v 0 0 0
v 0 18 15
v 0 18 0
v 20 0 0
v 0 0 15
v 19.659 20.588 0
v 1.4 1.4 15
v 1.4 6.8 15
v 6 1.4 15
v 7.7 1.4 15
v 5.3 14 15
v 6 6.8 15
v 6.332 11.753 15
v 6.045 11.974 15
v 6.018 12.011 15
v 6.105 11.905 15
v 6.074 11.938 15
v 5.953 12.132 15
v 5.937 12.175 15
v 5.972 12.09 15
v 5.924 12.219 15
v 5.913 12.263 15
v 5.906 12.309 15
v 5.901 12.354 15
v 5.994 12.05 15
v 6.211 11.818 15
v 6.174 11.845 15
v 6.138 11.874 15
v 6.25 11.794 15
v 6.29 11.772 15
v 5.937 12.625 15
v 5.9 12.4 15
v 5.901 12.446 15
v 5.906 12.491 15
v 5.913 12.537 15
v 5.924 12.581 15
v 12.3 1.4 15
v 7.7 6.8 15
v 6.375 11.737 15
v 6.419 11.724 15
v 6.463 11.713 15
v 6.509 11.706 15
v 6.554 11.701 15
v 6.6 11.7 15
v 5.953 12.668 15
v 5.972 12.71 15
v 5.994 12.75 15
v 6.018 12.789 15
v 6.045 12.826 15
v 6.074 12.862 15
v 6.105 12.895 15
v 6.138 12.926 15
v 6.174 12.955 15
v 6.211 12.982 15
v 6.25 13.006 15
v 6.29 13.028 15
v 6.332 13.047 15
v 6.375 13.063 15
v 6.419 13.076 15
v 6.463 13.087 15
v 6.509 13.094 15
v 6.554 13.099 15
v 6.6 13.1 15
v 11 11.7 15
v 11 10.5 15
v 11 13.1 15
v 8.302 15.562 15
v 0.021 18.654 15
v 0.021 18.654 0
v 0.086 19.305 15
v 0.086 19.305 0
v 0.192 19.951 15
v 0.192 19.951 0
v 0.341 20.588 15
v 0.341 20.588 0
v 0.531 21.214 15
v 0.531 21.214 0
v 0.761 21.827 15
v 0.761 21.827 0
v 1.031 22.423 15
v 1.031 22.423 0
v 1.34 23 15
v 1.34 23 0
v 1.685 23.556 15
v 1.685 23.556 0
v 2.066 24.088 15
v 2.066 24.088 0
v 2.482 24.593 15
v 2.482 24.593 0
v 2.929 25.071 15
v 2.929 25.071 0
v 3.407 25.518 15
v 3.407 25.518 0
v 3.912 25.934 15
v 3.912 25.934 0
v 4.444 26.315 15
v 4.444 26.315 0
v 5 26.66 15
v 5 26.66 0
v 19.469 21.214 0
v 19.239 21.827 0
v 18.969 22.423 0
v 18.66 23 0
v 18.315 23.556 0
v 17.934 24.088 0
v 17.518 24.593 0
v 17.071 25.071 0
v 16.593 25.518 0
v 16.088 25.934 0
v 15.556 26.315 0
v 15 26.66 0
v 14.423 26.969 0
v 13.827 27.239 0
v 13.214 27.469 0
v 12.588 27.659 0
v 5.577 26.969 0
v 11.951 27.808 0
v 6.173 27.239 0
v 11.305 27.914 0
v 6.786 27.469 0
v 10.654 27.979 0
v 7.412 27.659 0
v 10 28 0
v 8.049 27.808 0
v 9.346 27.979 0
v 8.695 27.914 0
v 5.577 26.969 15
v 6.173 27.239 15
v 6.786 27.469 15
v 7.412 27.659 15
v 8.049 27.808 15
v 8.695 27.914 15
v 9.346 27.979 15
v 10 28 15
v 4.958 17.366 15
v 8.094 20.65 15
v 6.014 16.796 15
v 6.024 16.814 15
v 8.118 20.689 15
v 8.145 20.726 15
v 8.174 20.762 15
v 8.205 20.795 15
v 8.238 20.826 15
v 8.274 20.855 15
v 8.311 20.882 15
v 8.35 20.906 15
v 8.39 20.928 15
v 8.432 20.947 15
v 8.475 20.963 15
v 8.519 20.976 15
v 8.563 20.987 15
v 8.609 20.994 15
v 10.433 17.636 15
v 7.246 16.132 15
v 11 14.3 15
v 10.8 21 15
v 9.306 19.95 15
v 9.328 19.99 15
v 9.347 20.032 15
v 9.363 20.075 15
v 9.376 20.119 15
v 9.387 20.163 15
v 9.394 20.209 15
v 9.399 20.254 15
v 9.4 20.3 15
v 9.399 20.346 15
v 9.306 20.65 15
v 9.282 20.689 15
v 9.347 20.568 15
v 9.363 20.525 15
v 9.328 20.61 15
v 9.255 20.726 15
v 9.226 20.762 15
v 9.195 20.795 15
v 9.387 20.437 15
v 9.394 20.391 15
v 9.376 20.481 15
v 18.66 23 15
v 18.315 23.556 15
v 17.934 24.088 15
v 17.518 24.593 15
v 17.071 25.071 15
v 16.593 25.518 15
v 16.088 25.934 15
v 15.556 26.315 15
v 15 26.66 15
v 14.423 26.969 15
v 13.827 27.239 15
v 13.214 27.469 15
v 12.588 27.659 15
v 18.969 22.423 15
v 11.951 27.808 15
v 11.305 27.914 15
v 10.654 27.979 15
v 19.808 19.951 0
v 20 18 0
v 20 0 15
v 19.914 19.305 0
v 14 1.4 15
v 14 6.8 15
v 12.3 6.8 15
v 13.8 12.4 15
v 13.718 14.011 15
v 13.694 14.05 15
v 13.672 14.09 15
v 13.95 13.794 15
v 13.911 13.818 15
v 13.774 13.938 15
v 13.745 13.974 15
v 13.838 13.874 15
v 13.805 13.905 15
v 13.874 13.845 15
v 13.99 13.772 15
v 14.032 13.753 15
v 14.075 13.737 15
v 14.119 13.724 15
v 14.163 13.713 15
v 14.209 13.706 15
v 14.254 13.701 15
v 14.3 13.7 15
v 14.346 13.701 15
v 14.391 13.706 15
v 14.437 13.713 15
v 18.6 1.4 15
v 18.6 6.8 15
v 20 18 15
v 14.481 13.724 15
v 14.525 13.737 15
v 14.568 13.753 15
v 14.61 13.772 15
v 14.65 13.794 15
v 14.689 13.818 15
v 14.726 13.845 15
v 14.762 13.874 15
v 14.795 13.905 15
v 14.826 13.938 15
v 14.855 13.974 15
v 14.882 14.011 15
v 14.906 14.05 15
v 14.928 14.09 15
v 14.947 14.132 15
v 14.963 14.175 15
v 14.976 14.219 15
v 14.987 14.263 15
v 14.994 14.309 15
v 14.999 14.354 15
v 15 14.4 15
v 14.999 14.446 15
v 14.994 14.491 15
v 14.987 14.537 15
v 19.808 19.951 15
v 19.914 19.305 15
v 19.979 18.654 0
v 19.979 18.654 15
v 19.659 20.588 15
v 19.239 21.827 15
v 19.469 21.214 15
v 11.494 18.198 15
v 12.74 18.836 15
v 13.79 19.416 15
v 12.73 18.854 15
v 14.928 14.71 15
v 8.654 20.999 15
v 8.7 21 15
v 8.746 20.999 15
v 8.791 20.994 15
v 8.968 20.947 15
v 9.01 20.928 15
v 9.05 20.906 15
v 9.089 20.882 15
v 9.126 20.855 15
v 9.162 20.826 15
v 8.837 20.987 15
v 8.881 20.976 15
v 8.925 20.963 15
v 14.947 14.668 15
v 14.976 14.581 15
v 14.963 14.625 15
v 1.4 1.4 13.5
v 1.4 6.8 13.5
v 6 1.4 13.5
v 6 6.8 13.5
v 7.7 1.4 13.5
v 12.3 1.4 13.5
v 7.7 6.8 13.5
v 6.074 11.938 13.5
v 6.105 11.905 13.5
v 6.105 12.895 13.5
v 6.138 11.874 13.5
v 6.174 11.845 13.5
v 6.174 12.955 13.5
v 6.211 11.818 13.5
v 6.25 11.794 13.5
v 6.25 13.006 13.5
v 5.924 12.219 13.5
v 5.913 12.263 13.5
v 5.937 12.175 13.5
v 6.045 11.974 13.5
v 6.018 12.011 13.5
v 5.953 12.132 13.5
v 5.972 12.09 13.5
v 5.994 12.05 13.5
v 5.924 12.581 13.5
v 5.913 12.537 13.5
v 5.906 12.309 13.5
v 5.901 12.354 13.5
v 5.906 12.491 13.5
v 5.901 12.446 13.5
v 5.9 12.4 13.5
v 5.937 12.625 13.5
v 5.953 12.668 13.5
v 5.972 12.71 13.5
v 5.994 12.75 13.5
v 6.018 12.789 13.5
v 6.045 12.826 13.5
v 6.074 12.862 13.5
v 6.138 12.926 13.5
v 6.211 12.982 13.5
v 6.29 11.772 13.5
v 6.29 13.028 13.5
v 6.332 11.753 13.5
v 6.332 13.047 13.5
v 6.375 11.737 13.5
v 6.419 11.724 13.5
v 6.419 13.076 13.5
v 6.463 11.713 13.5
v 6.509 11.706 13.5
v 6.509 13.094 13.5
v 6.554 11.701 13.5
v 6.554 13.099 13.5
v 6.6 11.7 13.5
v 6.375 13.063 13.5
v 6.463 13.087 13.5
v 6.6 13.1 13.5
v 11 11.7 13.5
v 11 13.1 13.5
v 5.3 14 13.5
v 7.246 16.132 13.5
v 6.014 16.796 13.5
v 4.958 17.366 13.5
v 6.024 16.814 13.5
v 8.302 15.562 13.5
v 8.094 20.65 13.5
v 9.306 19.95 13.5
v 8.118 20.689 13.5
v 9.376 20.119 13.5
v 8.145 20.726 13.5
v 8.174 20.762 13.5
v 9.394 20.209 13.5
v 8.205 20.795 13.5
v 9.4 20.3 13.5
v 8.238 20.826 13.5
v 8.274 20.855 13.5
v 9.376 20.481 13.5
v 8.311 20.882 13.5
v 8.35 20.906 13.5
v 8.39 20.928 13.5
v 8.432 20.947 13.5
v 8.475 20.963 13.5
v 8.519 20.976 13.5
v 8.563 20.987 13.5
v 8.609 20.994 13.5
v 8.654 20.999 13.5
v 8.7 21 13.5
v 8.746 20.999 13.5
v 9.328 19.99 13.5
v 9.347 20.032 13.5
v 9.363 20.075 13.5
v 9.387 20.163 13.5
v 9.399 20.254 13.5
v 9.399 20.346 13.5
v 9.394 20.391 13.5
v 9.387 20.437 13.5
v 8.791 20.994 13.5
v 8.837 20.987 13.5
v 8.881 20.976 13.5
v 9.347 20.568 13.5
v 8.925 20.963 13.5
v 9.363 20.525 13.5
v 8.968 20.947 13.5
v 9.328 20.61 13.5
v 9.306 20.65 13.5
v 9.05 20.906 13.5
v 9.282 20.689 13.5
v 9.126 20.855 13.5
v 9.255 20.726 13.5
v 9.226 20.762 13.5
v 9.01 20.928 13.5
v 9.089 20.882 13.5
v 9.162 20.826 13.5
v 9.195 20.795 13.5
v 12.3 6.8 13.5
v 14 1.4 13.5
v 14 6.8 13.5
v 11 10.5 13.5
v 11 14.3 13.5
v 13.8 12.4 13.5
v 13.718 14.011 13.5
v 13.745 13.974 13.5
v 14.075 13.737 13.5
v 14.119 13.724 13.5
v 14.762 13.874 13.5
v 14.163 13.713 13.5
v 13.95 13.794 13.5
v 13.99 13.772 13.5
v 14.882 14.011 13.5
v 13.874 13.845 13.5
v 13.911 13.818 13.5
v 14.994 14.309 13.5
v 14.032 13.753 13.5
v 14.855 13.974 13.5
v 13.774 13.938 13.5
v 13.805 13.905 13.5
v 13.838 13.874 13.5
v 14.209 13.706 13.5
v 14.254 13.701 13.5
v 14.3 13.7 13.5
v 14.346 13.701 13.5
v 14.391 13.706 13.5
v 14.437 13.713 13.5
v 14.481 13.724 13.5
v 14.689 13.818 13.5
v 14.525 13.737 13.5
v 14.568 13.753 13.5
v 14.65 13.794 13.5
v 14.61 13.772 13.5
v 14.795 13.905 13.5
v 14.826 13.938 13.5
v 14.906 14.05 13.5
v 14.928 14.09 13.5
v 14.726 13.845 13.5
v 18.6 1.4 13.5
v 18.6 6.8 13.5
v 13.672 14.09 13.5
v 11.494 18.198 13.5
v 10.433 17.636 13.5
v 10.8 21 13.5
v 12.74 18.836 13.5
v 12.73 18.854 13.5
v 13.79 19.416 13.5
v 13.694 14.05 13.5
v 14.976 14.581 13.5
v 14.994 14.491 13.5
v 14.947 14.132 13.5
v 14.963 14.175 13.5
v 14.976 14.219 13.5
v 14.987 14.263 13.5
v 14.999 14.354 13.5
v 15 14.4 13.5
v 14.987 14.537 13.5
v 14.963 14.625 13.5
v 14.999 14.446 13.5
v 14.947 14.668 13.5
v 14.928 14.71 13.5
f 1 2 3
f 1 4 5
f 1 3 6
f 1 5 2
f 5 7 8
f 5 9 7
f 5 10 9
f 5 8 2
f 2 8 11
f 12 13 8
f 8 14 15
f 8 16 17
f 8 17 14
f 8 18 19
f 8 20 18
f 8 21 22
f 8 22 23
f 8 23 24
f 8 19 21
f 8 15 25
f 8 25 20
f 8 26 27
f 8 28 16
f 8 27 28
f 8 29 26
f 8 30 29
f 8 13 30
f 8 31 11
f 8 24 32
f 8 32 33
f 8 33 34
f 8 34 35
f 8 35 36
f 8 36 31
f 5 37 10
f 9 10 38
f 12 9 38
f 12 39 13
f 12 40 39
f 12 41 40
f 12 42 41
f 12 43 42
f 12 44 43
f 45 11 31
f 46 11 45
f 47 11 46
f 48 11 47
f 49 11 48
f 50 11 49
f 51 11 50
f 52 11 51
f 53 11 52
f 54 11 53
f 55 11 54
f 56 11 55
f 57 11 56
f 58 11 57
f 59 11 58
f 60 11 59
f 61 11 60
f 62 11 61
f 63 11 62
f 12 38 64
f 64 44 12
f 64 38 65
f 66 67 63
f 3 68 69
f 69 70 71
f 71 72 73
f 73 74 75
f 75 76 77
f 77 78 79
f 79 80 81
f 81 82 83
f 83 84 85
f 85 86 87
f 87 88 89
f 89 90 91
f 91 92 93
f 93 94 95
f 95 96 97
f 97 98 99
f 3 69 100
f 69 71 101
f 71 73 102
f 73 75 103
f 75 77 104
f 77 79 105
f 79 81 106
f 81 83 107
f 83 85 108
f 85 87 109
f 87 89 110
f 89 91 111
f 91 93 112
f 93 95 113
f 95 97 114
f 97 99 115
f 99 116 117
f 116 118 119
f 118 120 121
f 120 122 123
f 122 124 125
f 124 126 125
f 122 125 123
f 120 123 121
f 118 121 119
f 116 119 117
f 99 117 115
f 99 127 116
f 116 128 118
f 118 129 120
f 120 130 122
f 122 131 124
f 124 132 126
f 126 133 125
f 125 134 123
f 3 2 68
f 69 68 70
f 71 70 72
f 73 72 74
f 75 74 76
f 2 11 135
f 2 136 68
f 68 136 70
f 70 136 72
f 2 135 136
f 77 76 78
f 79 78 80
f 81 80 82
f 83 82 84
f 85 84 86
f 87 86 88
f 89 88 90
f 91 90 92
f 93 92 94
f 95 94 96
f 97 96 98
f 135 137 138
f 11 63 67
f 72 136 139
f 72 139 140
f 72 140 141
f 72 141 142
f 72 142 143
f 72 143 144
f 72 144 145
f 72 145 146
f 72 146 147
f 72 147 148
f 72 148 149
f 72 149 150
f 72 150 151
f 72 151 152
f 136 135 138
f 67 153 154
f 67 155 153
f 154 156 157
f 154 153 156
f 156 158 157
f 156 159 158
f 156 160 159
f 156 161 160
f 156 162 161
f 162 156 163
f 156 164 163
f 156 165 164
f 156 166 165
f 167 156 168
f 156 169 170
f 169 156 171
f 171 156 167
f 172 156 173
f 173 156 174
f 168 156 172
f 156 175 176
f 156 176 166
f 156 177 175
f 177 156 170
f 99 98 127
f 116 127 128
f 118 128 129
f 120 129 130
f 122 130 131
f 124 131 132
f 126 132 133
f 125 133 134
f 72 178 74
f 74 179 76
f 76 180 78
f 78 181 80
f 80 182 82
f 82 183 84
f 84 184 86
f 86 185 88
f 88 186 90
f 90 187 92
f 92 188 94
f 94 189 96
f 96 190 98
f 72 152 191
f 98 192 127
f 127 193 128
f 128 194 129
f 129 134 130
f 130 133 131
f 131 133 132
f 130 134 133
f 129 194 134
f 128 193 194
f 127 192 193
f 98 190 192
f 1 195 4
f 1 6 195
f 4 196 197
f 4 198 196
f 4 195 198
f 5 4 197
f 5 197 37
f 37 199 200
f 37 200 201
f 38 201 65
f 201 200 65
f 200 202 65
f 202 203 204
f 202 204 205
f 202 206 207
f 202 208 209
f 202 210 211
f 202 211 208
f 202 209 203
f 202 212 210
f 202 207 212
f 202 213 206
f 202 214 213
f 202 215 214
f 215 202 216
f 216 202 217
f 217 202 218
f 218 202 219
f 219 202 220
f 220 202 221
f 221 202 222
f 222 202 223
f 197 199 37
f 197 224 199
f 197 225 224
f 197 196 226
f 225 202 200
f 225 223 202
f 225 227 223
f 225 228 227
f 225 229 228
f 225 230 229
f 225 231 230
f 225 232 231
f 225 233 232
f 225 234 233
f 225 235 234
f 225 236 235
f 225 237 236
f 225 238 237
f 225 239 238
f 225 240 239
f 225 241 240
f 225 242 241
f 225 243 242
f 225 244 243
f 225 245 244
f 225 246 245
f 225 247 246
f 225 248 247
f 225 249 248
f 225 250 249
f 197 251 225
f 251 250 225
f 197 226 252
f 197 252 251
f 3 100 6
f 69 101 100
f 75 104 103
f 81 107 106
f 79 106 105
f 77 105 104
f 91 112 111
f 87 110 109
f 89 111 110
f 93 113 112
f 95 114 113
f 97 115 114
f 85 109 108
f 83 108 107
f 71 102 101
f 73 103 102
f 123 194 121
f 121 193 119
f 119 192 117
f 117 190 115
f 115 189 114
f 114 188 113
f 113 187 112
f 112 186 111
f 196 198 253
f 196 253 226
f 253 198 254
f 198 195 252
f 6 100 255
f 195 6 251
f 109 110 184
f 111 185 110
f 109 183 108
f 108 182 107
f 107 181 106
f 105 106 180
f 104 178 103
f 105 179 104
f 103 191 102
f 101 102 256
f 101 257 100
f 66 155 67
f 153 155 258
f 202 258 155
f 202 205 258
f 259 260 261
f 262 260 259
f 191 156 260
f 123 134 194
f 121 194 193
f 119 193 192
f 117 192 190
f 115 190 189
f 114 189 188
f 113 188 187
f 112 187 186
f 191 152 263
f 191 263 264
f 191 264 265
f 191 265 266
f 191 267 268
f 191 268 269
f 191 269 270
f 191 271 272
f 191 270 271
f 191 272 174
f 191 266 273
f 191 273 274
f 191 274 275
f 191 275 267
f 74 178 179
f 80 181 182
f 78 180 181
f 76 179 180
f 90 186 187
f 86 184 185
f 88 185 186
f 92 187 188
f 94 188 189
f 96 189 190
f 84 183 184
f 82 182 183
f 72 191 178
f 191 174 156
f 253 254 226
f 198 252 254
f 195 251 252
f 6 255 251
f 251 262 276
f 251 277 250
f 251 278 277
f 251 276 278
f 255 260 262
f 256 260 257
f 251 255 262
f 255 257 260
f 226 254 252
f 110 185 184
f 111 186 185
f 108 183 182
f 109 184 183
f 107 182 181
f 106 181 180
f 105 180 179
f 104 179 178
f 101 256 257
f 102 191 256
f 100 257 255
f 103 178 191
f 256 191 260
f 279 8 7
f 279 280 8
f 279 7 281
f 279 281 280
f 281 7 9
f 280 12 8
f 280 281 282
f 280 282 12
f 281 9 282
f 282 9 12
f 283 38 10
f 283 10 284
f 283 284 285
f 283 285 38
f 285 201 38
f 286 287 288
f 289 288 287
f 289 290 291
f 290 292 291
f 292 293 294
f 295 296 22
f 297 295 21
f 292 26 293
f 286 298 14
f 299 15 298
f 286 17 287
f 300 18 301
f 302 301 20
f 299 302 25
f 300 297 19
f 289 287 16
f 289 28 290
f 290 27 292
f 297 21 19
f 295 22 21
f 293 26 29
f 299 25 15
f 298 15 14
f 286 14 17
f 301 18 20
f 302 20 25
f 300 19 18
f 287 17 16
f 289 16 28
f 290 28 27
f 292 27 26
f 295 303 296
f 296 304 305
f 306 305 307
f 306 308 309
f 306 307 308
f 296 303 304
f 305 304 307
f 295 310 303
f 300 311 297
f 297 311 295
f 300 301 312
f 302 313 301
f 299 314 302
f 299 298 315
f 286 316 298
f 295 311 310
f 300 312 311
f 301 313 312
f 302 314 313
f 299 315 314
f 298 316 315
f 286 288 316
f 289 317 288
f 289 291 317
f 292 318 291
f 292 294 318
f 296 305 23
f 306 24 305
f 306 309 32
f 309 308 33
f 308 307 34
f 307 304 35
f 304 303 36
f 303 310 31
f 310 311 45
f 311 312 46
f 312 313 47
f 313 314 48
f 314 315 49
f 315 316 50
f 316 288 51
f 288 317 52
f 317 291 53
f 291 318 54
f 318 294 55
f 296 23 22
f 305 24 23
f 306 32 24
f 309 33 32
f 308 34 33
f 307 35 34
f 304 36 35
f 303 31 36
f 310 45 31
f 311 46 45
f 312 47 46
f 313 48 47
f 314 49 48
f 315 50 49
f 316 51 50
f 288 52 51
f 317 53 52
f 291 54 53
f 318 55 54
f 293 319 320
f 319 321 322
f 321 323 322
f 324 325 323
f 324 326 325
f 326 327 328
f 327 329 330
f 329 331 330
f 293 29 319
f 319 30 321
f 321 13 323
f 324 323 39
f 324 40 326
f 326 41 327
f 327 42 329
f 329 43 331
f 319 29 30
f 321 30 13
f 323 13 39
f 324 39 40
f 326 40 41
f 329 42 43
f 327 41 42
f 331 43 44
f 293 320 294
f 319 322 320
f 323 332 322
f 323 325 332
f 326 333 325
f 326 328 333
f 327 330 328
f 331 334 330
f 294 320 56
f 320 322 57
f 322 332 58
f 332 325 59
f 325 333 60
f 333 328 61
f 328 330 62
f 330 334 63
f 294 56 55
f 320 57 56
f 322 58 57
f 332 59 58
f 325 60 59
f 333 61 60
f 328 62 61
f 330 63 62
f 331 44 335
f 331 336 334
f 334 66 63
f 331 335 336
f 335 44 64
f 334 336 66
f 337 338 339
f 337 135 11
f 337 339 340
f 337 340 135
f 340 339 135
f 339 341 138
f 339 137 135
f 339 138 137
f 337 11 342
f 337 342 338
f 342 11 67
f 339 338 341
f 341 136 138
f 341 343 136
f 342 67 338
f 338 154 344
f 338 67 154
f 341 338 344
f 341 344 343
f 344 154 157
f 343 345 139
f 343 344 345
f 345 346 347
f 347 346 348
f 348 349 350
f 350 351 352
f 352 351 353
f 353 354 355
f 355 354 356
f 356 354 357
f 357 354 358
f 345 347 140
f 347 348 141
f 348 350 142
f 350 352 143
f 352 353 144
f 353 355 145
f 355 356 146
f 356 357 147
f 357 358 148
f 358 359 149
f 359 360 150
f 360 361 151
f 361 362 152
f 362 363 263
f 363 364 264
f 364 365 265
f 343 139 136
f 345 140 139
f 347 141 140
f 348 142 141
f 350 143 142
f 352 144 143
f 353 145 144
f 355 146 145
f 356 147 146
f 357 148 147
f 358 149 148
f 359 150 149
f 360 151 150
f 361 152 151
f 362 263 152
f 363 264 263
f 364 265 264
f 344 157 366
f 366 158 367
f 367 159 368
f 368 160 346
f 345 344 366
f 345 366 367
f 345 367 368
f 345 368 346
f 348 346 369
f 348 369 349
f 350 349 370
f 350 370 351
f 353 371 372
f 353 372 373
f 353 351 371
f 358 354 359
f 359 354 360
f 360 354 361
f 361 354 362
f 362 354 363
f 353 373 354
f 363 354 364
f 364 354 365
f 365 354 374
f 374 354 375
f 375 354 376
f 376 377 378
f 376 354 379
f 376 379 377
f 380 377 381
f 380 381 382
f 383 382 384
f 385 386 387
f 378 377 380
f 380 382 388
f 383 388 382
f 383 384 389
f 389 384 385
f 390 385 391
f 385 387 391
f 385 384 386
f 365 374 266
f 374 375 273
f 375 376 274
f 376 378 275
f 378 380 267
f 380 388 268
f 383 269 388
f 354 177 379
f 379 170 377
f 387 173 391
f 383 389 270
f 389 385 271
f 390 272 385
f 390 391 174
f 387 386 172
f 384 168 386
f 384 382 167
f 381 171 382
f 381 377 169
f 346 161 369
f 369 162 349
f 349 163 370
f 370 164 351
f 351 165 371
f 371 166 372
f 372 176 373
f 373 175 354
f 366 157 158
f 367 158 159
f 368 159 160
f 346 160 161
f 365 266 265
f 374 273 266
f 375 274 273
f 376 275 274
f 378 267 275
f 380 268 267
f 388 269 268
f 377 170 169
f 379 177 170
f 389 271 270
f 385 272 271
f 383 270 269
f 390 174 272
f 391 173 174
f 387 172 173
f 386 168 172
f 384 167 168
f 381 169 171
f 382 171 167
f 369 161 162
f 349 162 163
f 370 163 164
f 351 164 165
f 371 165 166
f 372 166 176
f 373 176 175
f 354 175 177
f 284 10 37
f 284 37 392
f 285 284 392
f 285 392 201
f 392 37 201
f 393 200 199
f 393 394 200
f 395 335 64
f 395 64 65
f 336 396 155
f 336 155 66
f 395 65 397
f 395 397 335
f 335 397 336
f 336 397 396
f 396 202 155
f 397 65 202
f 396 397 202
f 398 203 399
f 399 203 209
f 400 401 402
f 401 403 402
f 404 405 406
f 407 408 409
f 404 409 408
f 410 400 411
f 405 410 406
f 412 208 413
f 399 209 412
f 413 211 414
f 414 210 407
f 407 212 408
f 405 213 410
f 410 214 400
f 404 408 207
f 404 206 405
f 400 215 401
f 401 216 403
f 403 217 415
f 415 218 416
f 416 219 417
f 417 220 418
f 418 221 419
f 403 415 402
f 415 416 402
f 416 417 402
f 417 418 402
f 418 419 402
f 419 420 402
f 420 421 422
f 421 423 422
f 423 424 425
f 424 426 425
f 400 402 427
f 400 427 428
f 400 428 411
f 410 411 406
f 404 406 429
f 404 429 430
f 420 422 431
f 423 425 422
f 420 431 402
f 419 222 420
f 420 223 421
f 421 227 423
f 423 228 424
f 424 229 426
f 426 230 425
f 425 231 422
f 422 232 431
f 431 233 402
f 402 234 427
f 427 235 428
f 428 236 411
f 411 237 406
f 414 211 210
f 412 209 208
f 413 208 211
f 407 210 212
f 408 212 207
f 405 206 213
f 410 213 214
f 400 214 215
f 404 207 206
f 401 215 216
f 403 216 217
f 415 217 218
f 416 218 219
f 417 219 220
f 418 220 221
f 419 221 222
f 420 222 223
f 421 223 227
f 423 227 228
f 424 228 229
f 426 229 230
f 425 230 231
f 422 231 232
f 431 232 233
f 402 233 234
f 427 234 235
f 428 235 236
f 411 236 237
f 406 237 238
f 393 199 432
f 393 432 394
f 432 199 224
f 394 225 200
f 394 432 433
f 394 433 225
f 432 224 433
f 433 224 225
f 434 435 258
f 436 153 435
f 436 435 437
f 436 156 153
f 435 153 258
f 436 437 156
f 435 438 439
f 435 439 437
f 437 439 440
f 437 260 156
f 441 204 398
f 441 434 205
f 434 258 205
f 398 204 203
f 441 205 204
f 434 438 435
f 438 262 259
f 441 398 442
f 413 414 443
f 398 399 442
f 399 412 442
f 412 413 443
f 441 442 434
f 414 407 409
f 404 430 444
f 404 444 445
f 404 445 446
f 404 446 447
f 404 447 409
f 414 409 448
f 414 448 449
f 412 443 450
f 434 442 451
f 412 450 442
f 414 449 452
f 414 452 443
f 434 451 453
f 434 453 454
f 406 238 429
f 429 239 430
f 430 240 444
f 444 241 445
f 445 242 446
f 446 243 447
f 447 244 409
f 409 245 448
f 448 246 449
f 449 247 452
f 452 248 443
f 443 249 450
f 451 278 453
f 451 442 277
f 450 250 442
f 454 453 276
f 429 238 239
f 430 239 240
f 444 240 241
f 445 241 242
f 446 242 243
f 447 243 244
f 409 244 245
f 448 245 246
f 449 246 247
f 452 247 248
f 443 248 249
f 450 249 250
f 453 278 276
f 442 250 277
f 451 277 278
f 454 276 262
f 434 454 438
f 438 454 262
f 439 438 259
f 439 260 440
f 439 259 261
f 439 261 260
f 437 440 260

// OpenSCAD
// Building miniatures — Tech, AI & Digital
// Units: millimetres. X = width; Y = facade height; Z = depth.
// Print flat on the back at Z=0. Front Z=15; recesses are 1.5 mm deep.
$fn=96;
depth=15;
recess=1.5;
module rect(x,y,w,h) { translate([x,y]) square([w,h]); }
module disc(x,y,r) { translate([x,y]) circle(r=r); }
module rr(x,y,w,h,r=1) { hull() for(a=[x+r,x+w-r],b=[y+r,y+h-r]) disc(a,b,r); }
module stroke(a,b,w=1.4) { hull() {disc(a[0],a[1],w/2);disc(b[0],b[1],w/2);} }
module ring(x,y,r,w=1.4) { difference(){disc(x,y,r);disc(x,y,r-w);} }
module framed(x,y,w,h,t=1.4) { difference(){rect(x,y,w,h);rect(x+t,y+t,w-2*t,h-2*t);} }
module arrow(a,b,w=1.5) { v=b-a; u=v/norm(v); n=[-u[1],u[0]]; tip=b; neck=b-u*2.8; stroke(a,neck,w); polygon([tip,neck+n*1.9,neck-n*1.9]); }
module building(){difference(){linear_extrude(height=depth) silhouette();translate([0,0,depth-recess]) linear_extrude(height=recess+0.2) details();}}
building();

module silhouette(){union(){rect(0,0,20,18);intersection(){disc(10,18,10);rect(0,18,20,10);}}}
module details(){
 for(x=[1.4,7.7,14.0]) rect(x,1.4,4.6,5.4);
 arrow([6.6,12.4],[13.8,12.4],1.4);
 arrow([14.3,14.4],[10.8,21.0],1.4);
 arrow([8.7,20.3],[5.3,14.0],1.4);
}
